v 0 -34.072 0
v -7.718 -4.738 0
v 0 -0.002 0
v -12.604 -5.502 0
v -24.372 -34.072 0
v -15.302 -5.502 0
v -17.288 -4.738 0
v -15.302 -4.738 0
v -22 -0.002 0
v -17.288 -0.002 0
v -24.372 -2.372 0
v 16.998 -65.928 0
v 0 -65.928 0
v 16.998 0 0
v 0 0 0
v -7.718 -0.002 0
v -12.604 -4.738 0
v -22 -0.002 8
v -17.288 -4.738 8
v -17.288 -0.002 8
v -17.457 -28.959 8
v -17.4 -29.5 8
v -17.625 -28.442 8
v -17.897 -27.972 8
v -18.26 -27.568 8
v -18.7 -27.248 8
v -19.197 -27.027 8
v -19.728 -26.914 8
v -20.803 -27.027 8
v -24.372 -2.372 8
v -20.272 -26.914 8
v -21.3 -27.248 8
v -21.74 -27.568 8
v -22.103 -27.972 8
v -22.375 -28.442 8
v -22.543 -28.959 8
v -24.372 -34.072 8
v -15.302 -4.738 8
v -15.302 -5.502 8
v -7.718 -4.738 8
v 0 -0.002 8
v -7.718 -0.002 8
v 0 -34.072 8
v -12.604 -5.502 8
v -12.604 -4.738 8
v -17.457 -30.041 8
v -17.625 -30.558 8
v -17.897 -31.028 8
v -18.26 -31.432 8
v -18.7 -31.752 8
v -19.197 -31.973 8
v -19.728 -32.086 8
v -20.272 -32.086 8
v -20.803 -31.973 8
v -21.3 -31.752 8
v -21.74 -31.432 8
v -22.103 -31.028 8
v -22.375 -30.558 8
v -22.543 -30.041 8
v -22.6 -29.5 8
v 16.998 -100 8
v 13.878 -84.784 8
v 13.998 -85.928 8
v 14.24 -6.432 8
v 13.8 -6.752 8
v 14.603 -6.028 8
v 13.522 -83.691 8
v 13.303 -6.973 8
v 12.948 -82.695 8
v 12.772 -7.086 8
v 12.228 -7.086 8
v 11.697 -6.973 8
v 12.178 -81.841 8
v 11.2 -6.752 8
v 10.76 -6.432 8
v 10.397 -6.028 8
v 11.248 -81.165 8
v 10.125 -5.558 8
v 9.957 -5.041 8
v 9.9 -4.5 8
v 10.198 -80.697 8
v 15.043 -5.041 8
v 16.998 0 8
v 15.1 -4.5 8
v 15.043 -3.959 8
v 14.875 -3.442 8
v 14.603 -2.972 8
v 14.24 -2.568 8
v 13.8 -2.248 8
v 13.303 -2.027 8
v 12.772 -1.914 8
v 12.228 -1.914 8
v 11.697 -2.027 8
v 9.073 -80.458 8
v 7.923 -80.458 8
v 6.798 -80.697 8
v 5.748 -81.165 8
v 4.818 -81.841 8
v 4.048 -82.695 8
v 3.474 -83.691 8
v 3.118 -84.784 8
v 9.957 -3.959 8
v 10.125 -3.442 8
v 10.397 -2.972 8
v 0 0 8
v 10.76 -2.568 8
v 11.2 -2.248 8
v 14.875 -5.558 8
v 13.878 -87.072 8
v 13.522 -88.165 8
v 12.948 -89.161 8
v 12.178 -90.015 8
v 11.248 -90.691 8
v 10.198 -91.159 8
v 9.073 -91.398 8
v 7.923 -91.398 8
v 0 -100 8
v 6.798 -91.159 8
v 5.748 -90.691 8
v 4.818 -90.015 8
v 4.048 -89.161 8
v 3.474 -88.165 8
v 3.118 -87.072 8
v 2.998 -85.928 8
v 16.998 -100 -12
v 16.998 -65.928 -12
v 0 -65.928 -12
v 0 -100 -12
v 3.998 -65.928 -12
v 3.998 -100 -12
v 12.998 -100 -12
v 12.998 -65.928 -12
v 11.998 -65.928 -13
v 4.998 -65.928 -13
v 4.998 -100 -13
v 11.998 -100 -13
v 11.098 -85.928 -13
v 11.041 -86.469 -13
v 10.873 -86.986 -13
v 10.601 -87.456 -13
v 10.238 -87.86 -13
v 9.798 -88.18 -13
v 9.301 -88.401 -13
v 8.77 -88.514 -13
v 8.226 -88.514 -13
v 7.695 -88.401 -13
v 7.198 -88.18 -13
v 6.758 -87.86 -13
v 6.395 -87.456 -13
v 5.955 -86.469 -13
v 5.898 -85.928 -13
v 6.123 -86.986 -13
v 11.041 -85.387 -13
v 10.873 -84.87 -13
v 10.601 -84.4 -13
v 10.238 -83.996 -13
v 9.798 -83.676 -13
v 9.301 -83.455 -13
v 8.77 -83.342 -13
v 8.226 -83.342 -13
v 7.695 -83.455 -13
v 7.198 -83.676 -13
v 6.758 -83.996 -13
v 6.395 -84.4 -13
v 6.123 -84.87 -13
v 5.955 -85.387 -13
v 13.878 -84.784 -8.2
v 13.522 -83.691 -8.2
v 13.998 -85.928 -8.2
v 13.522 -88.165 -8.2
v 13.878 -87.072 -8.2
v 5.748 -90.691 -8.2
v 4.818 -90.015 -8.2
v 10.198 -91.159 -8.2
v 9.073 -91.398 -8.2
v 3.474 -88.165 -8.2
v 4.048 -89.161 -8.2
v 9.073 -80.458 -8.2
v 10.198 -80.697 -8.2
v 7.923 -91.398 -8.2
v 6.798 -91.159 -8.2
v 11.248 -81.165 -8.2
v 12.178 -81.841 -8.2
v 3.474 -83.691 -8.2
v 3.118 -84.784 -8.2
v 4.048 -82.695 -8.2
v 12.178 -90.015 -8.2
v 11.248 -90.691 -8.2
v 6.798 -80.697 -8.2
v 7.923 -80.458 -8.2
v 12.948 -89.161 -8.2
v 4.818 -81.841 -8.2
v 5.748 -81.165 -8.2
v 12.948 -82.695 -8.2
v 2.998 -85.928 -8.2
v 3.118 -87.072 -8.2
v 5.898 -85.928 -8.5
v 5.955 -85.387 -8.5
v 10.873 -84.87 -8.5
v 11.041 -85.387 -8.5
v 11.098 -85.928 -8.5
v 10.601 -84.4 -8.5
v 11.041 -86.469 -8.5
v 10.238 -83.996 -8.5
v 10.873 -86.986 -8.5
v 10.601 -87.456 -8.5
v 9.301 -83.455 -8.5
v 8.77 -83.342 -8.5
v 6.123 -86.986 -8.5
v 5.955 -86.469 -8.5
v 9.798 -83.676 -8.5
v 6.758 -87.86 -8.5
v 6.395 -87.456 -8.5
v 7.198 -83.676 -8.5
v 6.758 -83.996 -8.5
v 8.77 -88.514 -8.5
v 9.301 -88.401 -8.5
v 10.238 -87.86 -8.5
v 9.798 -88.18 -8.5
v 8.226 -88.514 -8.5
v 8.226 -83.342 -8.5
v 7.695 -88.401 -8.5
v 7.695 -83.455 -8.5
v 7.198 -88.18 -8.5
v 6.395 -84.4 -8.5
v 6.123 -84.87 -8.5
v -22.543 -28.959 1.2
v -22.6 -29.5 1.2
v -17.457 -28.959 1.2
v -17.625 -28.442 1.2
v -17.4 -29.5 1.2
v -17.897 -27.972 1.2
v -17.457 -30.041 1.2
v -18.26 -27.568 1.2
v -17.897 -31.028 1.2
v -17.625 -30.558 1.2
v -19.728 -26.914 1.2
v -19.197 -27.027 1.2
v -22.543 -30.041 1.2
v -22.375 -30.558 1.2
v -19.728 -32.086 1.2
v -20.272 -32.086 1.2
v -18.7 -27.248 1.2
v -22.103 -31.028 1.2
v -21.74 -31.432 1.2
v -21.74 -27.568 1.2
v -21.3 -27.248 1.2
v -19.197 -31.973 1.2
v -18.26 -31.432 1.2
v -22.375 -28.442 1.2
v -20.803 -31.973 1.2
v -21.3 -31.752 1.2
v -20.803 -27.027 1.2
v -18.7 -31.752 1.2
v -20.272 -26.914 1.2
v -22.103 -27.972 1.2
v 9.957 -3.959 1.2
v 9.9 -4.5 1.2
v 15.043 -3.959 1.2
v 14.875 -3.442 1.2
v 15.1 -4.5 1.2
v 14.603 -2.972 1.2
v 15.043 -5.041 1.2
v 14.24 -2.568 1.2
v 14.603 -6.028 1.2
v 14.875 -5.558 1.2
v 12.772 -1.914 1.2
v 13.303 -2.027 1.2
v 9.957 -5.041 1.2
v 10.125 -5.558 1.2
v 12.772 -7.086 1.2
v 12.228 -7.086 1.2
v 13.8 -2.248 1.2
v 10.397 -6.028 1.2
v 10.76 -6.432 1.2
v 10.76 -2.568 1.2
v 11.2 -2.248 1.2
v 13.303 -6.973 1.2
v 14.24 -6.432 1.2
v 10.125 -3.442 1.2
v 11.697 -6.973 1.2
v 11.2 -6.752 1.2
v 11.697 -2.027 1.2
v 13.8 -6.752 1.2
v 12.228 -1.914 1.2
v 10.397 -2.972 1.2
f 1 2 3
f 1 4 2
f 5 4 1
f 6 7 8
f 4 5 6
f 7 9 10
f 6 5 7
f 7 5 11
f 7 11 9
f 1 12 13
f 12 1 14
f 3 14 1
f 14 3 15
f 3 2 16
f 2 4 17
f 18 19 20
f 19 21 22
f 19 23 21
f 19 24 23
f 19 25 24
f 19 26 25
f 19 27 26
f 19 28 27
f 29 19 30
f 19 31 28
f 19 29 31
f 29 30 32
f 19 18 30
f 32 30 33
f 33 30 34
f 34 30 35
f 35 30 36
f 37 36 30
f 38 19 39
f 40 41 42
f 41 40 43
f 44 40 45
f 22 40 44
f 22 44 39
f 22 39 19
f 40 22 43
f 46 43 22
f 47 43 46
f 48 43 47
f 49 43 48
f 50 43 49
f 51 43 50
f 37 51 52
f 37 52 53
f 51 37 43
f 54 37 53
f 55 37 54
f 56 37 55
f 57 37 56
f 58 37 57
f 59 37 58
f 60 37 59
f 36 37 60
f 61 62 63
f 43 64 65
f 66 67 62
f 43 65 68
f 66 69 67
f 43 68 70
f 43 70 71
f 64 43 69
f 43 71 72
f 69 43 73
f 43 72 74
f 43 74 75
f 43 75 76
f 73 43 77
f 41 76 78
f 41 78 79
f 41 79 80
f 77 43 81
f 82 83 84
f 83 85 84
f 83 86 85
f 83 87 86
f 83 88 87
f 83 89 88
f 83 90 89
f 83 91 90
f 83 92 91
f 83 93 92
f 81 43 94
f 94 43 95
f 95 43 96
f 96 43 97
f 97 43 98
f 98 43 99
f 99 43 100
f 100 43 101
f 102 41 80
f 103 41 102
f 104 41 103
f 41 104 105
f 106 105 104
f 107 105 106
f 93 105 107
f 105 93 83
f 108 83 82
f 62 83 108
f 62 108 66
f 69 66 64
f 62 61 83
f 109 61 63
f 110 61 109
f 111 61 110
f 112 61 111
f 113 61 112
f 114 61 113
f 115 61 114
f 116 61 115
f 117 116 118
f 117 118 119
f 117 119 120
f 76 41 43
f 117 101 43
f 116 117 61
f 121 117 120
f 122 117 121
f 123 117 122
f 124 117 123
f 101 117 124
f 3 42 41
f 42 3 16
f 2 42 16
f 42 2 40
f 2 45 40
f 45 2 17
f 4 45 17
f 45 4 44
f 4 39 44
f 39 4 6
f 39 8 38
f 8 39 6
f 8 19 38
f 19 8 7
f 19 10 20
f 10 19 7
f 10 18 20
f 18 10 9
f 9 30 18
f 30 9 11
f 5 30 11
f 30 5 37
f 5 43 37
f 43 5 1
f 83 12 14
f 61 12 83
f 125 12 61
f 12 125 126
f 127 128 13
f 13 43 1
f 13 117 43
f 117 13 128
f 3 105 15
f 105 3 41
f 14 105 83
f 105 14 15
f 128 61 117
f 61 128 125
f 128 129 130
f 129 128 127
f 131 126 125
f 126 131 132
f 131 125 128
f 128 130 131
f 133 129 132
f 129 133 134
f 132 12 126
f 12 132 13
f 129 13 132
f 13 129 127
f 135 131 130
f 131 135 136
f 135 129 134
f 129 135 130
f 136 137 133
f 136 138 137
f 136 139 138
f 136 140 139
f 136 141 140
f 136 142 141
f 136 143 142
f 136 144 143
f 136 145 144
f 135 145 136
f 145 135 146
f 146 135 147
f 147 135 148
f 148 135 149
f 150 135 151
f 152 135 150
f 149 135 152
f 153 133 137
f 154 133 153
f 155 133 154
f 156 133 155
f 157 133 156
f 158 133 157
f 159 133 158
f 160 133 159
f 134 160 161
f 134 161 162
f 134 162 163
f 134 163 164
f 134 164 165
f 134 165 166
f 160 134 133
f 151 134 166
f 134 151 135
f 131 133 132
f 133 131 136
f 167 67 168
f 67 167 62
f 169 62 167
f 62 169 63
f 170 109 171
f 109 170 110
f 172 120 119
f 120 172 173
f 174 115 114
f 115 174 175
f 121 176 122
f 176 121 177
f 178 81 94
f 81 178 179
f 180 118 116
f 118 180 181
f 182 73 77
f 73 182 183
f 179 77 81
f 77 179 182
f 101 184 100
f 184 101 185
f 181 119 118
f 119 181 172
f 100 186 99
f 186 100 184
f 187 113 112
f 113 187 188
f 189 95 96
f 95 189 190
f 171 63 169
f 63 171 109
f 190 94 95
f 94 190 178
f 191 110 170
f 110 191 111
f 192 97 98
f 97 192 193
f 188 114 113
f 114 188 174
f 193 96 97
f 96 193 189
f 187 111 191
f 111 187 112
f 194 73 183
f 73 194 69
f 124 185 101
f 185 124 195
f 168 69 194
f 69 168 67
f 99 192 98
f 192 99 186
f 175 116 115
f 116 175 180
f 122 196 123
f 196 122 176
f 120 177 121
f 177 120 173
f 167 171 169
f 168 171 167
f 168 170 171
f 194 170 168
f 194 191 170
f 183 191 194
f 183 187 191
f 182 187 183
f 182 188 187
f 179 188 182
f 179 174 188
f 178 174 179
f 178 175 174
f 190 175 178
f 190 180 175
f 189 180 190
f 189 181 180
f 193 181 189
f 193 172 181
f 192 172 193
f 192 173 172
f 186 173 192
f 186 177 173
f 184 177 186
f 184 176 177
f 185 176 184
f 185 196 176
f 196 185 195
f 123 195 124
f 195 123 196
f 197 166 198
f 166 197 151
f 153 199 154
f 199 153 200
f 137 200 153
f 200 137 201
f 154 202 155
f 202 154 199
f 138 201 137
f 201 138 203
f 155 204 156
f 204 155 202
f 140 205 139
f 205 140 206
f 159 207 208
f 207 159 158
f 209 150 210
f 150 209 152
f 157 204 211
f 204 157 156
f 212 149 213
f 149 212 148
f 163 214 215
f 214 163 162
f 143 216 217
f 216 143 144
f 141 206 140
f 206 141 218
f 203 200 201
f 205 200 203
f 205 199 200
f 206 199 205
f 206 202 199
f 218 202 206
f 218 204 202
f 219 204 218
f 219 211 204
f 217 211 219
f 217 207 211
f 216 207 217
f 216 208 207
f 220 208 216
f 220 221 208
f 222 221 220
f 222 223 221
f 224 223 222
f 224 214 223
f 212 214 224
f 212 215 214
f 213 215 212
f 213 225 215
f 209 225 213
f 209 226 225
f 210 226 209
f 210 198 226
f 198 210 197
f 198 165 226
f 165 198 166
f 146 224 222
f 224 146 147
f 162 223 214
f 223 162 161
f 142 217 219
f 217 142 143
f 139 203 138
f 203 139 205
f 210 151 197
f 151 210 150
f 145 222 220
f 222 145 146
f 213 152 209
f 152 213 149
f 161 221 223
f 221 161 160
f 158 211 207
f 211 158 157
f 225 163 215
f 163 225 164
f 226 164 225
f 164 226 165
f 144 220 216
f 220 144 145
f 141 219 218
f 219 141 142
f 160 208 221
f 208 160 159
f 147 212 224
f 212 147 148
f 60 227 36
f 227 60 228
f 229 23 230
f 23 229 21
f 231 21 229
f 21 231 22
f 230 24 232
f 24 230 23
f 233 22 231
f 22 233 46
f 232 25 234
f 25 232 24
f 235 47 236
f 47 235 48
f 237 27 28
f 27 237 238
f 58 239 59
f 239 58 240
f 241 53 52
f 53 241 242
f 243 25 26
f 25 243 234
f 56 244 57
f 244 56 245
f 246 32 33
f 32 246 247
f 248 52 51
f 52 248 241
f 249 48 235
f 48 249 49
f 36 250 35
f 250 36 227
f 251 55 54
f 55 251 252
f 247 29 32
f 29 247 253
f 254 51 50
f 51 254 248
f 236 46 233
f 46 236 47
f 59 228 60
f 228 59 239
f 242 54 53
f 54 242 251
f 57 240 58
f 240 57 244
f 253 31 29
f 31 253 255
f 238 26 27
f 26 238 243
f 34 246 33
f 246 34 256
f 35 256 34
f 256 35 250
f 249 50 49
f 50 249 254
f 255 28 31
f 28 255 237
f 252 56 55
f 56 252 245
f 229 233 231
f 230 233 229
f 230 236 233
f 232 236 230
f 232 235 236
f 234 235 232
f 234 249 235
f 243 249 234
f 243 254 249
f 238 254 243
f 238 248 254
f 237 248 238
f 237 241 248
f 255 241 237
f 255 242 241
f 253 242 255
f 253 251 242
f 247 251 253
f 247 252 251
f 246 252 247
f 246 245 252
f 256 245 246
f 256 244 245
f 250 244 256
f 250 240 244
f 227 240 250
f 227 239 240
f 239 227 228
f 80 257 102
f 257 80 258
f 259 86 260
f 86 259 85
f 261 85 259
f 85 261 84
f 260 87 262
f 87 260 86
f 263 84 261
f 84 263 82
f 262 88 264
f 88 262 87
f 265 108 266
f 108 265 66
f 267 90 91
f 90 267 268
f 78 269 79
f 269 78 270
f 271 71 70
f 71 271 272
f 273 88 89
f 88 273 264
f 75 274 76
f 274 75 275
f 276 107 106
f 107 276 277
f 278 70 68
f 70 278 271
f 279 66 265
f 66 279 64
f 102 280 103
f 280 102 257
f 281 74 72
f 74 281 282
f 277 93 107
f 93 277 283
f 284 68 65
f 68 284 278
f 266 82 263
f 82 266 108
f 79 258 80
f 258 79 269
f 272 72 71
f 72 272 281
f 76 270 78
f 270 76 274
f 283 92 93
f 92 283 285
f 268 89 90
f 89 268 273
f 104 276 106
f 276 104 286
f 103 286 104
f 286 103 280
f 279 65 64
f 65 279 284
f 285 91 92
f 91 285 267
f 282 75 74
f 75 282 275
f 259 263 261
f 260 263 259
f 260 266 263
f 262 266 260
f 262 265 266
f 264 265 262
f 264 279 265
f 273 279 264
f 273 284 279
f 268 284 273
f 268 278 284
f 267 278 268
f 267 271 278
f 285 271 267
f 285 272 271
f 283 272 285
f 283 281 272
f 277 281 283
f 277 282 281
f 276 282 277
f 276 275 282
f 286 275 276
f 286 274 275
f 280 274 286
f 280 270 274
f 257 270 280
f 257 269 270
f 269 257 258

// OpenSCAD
$fn=30;

thick=8;

/* main body */
if (1) difference() {
   union() {
      linear_extrude(height=thick)
         polygon(points=[[16.998,-0.002], [-7.718,-0.002], [-7.718, -4.738],
                         [-12.604,-4.738], [-12.604,-5.502], [-15.302,-5.502],
                         [-15.302,-4.738], [-17.288,-4.738], [-17.288,-0.002],
                         [-22,-0.002], [-24.372,-2.372], [-24.372,-34.072],
                         [16.998,-34.072]]);

      translate([0,-100,0]) cube([16.998,100,thick]);
      translate([0,-100,-12]) cube([16.998,34.072,thick+12]);
   
      /* angled bit to fit in v-slot */
      translate([0,-100+34.072,-12]) translate([16.998-4,0,0]) rotate([-90,0,180])
         linear_extrude(height=34.072)
            polygon(points=[[-0.1,0],[0,0],[1,1],[8,1],[9,0],[9,-0.1]]);
   }
   
   /* round head M5 hole */
   translate([0,-100+34.072,-12]) translate([16.998-8.5,-20,0]) {
      translate([0,0,3.8]) cylinder(d=11,h=20);
      translate([0,0,-2]) cylinder(d=5.2,h=3.5+2);
   }

   screwHoles();
}
else {
   // screwHoles();
   translate([16.998-8.5,-20,-2]) cylinder(d=5.2,h=50);
}

module screwHoles() {
   translate([-20.0,-29.5,0]) {
      translate([0,0,thick-6.9+0.1]) cylinder(d=5.2,h=6.9);
      translate([0,0,thick+0.1]) cylinder(d=3.2,h=30);
   }
   translate([12.5,-4.5,0]) {
      translate([0,0,thick-6.9+0.1]) cylinder(d=5.2,h=6.9);
      translate([0,0,thick+0.1]) cylinder(d=3.2,h=30);
   }
}
